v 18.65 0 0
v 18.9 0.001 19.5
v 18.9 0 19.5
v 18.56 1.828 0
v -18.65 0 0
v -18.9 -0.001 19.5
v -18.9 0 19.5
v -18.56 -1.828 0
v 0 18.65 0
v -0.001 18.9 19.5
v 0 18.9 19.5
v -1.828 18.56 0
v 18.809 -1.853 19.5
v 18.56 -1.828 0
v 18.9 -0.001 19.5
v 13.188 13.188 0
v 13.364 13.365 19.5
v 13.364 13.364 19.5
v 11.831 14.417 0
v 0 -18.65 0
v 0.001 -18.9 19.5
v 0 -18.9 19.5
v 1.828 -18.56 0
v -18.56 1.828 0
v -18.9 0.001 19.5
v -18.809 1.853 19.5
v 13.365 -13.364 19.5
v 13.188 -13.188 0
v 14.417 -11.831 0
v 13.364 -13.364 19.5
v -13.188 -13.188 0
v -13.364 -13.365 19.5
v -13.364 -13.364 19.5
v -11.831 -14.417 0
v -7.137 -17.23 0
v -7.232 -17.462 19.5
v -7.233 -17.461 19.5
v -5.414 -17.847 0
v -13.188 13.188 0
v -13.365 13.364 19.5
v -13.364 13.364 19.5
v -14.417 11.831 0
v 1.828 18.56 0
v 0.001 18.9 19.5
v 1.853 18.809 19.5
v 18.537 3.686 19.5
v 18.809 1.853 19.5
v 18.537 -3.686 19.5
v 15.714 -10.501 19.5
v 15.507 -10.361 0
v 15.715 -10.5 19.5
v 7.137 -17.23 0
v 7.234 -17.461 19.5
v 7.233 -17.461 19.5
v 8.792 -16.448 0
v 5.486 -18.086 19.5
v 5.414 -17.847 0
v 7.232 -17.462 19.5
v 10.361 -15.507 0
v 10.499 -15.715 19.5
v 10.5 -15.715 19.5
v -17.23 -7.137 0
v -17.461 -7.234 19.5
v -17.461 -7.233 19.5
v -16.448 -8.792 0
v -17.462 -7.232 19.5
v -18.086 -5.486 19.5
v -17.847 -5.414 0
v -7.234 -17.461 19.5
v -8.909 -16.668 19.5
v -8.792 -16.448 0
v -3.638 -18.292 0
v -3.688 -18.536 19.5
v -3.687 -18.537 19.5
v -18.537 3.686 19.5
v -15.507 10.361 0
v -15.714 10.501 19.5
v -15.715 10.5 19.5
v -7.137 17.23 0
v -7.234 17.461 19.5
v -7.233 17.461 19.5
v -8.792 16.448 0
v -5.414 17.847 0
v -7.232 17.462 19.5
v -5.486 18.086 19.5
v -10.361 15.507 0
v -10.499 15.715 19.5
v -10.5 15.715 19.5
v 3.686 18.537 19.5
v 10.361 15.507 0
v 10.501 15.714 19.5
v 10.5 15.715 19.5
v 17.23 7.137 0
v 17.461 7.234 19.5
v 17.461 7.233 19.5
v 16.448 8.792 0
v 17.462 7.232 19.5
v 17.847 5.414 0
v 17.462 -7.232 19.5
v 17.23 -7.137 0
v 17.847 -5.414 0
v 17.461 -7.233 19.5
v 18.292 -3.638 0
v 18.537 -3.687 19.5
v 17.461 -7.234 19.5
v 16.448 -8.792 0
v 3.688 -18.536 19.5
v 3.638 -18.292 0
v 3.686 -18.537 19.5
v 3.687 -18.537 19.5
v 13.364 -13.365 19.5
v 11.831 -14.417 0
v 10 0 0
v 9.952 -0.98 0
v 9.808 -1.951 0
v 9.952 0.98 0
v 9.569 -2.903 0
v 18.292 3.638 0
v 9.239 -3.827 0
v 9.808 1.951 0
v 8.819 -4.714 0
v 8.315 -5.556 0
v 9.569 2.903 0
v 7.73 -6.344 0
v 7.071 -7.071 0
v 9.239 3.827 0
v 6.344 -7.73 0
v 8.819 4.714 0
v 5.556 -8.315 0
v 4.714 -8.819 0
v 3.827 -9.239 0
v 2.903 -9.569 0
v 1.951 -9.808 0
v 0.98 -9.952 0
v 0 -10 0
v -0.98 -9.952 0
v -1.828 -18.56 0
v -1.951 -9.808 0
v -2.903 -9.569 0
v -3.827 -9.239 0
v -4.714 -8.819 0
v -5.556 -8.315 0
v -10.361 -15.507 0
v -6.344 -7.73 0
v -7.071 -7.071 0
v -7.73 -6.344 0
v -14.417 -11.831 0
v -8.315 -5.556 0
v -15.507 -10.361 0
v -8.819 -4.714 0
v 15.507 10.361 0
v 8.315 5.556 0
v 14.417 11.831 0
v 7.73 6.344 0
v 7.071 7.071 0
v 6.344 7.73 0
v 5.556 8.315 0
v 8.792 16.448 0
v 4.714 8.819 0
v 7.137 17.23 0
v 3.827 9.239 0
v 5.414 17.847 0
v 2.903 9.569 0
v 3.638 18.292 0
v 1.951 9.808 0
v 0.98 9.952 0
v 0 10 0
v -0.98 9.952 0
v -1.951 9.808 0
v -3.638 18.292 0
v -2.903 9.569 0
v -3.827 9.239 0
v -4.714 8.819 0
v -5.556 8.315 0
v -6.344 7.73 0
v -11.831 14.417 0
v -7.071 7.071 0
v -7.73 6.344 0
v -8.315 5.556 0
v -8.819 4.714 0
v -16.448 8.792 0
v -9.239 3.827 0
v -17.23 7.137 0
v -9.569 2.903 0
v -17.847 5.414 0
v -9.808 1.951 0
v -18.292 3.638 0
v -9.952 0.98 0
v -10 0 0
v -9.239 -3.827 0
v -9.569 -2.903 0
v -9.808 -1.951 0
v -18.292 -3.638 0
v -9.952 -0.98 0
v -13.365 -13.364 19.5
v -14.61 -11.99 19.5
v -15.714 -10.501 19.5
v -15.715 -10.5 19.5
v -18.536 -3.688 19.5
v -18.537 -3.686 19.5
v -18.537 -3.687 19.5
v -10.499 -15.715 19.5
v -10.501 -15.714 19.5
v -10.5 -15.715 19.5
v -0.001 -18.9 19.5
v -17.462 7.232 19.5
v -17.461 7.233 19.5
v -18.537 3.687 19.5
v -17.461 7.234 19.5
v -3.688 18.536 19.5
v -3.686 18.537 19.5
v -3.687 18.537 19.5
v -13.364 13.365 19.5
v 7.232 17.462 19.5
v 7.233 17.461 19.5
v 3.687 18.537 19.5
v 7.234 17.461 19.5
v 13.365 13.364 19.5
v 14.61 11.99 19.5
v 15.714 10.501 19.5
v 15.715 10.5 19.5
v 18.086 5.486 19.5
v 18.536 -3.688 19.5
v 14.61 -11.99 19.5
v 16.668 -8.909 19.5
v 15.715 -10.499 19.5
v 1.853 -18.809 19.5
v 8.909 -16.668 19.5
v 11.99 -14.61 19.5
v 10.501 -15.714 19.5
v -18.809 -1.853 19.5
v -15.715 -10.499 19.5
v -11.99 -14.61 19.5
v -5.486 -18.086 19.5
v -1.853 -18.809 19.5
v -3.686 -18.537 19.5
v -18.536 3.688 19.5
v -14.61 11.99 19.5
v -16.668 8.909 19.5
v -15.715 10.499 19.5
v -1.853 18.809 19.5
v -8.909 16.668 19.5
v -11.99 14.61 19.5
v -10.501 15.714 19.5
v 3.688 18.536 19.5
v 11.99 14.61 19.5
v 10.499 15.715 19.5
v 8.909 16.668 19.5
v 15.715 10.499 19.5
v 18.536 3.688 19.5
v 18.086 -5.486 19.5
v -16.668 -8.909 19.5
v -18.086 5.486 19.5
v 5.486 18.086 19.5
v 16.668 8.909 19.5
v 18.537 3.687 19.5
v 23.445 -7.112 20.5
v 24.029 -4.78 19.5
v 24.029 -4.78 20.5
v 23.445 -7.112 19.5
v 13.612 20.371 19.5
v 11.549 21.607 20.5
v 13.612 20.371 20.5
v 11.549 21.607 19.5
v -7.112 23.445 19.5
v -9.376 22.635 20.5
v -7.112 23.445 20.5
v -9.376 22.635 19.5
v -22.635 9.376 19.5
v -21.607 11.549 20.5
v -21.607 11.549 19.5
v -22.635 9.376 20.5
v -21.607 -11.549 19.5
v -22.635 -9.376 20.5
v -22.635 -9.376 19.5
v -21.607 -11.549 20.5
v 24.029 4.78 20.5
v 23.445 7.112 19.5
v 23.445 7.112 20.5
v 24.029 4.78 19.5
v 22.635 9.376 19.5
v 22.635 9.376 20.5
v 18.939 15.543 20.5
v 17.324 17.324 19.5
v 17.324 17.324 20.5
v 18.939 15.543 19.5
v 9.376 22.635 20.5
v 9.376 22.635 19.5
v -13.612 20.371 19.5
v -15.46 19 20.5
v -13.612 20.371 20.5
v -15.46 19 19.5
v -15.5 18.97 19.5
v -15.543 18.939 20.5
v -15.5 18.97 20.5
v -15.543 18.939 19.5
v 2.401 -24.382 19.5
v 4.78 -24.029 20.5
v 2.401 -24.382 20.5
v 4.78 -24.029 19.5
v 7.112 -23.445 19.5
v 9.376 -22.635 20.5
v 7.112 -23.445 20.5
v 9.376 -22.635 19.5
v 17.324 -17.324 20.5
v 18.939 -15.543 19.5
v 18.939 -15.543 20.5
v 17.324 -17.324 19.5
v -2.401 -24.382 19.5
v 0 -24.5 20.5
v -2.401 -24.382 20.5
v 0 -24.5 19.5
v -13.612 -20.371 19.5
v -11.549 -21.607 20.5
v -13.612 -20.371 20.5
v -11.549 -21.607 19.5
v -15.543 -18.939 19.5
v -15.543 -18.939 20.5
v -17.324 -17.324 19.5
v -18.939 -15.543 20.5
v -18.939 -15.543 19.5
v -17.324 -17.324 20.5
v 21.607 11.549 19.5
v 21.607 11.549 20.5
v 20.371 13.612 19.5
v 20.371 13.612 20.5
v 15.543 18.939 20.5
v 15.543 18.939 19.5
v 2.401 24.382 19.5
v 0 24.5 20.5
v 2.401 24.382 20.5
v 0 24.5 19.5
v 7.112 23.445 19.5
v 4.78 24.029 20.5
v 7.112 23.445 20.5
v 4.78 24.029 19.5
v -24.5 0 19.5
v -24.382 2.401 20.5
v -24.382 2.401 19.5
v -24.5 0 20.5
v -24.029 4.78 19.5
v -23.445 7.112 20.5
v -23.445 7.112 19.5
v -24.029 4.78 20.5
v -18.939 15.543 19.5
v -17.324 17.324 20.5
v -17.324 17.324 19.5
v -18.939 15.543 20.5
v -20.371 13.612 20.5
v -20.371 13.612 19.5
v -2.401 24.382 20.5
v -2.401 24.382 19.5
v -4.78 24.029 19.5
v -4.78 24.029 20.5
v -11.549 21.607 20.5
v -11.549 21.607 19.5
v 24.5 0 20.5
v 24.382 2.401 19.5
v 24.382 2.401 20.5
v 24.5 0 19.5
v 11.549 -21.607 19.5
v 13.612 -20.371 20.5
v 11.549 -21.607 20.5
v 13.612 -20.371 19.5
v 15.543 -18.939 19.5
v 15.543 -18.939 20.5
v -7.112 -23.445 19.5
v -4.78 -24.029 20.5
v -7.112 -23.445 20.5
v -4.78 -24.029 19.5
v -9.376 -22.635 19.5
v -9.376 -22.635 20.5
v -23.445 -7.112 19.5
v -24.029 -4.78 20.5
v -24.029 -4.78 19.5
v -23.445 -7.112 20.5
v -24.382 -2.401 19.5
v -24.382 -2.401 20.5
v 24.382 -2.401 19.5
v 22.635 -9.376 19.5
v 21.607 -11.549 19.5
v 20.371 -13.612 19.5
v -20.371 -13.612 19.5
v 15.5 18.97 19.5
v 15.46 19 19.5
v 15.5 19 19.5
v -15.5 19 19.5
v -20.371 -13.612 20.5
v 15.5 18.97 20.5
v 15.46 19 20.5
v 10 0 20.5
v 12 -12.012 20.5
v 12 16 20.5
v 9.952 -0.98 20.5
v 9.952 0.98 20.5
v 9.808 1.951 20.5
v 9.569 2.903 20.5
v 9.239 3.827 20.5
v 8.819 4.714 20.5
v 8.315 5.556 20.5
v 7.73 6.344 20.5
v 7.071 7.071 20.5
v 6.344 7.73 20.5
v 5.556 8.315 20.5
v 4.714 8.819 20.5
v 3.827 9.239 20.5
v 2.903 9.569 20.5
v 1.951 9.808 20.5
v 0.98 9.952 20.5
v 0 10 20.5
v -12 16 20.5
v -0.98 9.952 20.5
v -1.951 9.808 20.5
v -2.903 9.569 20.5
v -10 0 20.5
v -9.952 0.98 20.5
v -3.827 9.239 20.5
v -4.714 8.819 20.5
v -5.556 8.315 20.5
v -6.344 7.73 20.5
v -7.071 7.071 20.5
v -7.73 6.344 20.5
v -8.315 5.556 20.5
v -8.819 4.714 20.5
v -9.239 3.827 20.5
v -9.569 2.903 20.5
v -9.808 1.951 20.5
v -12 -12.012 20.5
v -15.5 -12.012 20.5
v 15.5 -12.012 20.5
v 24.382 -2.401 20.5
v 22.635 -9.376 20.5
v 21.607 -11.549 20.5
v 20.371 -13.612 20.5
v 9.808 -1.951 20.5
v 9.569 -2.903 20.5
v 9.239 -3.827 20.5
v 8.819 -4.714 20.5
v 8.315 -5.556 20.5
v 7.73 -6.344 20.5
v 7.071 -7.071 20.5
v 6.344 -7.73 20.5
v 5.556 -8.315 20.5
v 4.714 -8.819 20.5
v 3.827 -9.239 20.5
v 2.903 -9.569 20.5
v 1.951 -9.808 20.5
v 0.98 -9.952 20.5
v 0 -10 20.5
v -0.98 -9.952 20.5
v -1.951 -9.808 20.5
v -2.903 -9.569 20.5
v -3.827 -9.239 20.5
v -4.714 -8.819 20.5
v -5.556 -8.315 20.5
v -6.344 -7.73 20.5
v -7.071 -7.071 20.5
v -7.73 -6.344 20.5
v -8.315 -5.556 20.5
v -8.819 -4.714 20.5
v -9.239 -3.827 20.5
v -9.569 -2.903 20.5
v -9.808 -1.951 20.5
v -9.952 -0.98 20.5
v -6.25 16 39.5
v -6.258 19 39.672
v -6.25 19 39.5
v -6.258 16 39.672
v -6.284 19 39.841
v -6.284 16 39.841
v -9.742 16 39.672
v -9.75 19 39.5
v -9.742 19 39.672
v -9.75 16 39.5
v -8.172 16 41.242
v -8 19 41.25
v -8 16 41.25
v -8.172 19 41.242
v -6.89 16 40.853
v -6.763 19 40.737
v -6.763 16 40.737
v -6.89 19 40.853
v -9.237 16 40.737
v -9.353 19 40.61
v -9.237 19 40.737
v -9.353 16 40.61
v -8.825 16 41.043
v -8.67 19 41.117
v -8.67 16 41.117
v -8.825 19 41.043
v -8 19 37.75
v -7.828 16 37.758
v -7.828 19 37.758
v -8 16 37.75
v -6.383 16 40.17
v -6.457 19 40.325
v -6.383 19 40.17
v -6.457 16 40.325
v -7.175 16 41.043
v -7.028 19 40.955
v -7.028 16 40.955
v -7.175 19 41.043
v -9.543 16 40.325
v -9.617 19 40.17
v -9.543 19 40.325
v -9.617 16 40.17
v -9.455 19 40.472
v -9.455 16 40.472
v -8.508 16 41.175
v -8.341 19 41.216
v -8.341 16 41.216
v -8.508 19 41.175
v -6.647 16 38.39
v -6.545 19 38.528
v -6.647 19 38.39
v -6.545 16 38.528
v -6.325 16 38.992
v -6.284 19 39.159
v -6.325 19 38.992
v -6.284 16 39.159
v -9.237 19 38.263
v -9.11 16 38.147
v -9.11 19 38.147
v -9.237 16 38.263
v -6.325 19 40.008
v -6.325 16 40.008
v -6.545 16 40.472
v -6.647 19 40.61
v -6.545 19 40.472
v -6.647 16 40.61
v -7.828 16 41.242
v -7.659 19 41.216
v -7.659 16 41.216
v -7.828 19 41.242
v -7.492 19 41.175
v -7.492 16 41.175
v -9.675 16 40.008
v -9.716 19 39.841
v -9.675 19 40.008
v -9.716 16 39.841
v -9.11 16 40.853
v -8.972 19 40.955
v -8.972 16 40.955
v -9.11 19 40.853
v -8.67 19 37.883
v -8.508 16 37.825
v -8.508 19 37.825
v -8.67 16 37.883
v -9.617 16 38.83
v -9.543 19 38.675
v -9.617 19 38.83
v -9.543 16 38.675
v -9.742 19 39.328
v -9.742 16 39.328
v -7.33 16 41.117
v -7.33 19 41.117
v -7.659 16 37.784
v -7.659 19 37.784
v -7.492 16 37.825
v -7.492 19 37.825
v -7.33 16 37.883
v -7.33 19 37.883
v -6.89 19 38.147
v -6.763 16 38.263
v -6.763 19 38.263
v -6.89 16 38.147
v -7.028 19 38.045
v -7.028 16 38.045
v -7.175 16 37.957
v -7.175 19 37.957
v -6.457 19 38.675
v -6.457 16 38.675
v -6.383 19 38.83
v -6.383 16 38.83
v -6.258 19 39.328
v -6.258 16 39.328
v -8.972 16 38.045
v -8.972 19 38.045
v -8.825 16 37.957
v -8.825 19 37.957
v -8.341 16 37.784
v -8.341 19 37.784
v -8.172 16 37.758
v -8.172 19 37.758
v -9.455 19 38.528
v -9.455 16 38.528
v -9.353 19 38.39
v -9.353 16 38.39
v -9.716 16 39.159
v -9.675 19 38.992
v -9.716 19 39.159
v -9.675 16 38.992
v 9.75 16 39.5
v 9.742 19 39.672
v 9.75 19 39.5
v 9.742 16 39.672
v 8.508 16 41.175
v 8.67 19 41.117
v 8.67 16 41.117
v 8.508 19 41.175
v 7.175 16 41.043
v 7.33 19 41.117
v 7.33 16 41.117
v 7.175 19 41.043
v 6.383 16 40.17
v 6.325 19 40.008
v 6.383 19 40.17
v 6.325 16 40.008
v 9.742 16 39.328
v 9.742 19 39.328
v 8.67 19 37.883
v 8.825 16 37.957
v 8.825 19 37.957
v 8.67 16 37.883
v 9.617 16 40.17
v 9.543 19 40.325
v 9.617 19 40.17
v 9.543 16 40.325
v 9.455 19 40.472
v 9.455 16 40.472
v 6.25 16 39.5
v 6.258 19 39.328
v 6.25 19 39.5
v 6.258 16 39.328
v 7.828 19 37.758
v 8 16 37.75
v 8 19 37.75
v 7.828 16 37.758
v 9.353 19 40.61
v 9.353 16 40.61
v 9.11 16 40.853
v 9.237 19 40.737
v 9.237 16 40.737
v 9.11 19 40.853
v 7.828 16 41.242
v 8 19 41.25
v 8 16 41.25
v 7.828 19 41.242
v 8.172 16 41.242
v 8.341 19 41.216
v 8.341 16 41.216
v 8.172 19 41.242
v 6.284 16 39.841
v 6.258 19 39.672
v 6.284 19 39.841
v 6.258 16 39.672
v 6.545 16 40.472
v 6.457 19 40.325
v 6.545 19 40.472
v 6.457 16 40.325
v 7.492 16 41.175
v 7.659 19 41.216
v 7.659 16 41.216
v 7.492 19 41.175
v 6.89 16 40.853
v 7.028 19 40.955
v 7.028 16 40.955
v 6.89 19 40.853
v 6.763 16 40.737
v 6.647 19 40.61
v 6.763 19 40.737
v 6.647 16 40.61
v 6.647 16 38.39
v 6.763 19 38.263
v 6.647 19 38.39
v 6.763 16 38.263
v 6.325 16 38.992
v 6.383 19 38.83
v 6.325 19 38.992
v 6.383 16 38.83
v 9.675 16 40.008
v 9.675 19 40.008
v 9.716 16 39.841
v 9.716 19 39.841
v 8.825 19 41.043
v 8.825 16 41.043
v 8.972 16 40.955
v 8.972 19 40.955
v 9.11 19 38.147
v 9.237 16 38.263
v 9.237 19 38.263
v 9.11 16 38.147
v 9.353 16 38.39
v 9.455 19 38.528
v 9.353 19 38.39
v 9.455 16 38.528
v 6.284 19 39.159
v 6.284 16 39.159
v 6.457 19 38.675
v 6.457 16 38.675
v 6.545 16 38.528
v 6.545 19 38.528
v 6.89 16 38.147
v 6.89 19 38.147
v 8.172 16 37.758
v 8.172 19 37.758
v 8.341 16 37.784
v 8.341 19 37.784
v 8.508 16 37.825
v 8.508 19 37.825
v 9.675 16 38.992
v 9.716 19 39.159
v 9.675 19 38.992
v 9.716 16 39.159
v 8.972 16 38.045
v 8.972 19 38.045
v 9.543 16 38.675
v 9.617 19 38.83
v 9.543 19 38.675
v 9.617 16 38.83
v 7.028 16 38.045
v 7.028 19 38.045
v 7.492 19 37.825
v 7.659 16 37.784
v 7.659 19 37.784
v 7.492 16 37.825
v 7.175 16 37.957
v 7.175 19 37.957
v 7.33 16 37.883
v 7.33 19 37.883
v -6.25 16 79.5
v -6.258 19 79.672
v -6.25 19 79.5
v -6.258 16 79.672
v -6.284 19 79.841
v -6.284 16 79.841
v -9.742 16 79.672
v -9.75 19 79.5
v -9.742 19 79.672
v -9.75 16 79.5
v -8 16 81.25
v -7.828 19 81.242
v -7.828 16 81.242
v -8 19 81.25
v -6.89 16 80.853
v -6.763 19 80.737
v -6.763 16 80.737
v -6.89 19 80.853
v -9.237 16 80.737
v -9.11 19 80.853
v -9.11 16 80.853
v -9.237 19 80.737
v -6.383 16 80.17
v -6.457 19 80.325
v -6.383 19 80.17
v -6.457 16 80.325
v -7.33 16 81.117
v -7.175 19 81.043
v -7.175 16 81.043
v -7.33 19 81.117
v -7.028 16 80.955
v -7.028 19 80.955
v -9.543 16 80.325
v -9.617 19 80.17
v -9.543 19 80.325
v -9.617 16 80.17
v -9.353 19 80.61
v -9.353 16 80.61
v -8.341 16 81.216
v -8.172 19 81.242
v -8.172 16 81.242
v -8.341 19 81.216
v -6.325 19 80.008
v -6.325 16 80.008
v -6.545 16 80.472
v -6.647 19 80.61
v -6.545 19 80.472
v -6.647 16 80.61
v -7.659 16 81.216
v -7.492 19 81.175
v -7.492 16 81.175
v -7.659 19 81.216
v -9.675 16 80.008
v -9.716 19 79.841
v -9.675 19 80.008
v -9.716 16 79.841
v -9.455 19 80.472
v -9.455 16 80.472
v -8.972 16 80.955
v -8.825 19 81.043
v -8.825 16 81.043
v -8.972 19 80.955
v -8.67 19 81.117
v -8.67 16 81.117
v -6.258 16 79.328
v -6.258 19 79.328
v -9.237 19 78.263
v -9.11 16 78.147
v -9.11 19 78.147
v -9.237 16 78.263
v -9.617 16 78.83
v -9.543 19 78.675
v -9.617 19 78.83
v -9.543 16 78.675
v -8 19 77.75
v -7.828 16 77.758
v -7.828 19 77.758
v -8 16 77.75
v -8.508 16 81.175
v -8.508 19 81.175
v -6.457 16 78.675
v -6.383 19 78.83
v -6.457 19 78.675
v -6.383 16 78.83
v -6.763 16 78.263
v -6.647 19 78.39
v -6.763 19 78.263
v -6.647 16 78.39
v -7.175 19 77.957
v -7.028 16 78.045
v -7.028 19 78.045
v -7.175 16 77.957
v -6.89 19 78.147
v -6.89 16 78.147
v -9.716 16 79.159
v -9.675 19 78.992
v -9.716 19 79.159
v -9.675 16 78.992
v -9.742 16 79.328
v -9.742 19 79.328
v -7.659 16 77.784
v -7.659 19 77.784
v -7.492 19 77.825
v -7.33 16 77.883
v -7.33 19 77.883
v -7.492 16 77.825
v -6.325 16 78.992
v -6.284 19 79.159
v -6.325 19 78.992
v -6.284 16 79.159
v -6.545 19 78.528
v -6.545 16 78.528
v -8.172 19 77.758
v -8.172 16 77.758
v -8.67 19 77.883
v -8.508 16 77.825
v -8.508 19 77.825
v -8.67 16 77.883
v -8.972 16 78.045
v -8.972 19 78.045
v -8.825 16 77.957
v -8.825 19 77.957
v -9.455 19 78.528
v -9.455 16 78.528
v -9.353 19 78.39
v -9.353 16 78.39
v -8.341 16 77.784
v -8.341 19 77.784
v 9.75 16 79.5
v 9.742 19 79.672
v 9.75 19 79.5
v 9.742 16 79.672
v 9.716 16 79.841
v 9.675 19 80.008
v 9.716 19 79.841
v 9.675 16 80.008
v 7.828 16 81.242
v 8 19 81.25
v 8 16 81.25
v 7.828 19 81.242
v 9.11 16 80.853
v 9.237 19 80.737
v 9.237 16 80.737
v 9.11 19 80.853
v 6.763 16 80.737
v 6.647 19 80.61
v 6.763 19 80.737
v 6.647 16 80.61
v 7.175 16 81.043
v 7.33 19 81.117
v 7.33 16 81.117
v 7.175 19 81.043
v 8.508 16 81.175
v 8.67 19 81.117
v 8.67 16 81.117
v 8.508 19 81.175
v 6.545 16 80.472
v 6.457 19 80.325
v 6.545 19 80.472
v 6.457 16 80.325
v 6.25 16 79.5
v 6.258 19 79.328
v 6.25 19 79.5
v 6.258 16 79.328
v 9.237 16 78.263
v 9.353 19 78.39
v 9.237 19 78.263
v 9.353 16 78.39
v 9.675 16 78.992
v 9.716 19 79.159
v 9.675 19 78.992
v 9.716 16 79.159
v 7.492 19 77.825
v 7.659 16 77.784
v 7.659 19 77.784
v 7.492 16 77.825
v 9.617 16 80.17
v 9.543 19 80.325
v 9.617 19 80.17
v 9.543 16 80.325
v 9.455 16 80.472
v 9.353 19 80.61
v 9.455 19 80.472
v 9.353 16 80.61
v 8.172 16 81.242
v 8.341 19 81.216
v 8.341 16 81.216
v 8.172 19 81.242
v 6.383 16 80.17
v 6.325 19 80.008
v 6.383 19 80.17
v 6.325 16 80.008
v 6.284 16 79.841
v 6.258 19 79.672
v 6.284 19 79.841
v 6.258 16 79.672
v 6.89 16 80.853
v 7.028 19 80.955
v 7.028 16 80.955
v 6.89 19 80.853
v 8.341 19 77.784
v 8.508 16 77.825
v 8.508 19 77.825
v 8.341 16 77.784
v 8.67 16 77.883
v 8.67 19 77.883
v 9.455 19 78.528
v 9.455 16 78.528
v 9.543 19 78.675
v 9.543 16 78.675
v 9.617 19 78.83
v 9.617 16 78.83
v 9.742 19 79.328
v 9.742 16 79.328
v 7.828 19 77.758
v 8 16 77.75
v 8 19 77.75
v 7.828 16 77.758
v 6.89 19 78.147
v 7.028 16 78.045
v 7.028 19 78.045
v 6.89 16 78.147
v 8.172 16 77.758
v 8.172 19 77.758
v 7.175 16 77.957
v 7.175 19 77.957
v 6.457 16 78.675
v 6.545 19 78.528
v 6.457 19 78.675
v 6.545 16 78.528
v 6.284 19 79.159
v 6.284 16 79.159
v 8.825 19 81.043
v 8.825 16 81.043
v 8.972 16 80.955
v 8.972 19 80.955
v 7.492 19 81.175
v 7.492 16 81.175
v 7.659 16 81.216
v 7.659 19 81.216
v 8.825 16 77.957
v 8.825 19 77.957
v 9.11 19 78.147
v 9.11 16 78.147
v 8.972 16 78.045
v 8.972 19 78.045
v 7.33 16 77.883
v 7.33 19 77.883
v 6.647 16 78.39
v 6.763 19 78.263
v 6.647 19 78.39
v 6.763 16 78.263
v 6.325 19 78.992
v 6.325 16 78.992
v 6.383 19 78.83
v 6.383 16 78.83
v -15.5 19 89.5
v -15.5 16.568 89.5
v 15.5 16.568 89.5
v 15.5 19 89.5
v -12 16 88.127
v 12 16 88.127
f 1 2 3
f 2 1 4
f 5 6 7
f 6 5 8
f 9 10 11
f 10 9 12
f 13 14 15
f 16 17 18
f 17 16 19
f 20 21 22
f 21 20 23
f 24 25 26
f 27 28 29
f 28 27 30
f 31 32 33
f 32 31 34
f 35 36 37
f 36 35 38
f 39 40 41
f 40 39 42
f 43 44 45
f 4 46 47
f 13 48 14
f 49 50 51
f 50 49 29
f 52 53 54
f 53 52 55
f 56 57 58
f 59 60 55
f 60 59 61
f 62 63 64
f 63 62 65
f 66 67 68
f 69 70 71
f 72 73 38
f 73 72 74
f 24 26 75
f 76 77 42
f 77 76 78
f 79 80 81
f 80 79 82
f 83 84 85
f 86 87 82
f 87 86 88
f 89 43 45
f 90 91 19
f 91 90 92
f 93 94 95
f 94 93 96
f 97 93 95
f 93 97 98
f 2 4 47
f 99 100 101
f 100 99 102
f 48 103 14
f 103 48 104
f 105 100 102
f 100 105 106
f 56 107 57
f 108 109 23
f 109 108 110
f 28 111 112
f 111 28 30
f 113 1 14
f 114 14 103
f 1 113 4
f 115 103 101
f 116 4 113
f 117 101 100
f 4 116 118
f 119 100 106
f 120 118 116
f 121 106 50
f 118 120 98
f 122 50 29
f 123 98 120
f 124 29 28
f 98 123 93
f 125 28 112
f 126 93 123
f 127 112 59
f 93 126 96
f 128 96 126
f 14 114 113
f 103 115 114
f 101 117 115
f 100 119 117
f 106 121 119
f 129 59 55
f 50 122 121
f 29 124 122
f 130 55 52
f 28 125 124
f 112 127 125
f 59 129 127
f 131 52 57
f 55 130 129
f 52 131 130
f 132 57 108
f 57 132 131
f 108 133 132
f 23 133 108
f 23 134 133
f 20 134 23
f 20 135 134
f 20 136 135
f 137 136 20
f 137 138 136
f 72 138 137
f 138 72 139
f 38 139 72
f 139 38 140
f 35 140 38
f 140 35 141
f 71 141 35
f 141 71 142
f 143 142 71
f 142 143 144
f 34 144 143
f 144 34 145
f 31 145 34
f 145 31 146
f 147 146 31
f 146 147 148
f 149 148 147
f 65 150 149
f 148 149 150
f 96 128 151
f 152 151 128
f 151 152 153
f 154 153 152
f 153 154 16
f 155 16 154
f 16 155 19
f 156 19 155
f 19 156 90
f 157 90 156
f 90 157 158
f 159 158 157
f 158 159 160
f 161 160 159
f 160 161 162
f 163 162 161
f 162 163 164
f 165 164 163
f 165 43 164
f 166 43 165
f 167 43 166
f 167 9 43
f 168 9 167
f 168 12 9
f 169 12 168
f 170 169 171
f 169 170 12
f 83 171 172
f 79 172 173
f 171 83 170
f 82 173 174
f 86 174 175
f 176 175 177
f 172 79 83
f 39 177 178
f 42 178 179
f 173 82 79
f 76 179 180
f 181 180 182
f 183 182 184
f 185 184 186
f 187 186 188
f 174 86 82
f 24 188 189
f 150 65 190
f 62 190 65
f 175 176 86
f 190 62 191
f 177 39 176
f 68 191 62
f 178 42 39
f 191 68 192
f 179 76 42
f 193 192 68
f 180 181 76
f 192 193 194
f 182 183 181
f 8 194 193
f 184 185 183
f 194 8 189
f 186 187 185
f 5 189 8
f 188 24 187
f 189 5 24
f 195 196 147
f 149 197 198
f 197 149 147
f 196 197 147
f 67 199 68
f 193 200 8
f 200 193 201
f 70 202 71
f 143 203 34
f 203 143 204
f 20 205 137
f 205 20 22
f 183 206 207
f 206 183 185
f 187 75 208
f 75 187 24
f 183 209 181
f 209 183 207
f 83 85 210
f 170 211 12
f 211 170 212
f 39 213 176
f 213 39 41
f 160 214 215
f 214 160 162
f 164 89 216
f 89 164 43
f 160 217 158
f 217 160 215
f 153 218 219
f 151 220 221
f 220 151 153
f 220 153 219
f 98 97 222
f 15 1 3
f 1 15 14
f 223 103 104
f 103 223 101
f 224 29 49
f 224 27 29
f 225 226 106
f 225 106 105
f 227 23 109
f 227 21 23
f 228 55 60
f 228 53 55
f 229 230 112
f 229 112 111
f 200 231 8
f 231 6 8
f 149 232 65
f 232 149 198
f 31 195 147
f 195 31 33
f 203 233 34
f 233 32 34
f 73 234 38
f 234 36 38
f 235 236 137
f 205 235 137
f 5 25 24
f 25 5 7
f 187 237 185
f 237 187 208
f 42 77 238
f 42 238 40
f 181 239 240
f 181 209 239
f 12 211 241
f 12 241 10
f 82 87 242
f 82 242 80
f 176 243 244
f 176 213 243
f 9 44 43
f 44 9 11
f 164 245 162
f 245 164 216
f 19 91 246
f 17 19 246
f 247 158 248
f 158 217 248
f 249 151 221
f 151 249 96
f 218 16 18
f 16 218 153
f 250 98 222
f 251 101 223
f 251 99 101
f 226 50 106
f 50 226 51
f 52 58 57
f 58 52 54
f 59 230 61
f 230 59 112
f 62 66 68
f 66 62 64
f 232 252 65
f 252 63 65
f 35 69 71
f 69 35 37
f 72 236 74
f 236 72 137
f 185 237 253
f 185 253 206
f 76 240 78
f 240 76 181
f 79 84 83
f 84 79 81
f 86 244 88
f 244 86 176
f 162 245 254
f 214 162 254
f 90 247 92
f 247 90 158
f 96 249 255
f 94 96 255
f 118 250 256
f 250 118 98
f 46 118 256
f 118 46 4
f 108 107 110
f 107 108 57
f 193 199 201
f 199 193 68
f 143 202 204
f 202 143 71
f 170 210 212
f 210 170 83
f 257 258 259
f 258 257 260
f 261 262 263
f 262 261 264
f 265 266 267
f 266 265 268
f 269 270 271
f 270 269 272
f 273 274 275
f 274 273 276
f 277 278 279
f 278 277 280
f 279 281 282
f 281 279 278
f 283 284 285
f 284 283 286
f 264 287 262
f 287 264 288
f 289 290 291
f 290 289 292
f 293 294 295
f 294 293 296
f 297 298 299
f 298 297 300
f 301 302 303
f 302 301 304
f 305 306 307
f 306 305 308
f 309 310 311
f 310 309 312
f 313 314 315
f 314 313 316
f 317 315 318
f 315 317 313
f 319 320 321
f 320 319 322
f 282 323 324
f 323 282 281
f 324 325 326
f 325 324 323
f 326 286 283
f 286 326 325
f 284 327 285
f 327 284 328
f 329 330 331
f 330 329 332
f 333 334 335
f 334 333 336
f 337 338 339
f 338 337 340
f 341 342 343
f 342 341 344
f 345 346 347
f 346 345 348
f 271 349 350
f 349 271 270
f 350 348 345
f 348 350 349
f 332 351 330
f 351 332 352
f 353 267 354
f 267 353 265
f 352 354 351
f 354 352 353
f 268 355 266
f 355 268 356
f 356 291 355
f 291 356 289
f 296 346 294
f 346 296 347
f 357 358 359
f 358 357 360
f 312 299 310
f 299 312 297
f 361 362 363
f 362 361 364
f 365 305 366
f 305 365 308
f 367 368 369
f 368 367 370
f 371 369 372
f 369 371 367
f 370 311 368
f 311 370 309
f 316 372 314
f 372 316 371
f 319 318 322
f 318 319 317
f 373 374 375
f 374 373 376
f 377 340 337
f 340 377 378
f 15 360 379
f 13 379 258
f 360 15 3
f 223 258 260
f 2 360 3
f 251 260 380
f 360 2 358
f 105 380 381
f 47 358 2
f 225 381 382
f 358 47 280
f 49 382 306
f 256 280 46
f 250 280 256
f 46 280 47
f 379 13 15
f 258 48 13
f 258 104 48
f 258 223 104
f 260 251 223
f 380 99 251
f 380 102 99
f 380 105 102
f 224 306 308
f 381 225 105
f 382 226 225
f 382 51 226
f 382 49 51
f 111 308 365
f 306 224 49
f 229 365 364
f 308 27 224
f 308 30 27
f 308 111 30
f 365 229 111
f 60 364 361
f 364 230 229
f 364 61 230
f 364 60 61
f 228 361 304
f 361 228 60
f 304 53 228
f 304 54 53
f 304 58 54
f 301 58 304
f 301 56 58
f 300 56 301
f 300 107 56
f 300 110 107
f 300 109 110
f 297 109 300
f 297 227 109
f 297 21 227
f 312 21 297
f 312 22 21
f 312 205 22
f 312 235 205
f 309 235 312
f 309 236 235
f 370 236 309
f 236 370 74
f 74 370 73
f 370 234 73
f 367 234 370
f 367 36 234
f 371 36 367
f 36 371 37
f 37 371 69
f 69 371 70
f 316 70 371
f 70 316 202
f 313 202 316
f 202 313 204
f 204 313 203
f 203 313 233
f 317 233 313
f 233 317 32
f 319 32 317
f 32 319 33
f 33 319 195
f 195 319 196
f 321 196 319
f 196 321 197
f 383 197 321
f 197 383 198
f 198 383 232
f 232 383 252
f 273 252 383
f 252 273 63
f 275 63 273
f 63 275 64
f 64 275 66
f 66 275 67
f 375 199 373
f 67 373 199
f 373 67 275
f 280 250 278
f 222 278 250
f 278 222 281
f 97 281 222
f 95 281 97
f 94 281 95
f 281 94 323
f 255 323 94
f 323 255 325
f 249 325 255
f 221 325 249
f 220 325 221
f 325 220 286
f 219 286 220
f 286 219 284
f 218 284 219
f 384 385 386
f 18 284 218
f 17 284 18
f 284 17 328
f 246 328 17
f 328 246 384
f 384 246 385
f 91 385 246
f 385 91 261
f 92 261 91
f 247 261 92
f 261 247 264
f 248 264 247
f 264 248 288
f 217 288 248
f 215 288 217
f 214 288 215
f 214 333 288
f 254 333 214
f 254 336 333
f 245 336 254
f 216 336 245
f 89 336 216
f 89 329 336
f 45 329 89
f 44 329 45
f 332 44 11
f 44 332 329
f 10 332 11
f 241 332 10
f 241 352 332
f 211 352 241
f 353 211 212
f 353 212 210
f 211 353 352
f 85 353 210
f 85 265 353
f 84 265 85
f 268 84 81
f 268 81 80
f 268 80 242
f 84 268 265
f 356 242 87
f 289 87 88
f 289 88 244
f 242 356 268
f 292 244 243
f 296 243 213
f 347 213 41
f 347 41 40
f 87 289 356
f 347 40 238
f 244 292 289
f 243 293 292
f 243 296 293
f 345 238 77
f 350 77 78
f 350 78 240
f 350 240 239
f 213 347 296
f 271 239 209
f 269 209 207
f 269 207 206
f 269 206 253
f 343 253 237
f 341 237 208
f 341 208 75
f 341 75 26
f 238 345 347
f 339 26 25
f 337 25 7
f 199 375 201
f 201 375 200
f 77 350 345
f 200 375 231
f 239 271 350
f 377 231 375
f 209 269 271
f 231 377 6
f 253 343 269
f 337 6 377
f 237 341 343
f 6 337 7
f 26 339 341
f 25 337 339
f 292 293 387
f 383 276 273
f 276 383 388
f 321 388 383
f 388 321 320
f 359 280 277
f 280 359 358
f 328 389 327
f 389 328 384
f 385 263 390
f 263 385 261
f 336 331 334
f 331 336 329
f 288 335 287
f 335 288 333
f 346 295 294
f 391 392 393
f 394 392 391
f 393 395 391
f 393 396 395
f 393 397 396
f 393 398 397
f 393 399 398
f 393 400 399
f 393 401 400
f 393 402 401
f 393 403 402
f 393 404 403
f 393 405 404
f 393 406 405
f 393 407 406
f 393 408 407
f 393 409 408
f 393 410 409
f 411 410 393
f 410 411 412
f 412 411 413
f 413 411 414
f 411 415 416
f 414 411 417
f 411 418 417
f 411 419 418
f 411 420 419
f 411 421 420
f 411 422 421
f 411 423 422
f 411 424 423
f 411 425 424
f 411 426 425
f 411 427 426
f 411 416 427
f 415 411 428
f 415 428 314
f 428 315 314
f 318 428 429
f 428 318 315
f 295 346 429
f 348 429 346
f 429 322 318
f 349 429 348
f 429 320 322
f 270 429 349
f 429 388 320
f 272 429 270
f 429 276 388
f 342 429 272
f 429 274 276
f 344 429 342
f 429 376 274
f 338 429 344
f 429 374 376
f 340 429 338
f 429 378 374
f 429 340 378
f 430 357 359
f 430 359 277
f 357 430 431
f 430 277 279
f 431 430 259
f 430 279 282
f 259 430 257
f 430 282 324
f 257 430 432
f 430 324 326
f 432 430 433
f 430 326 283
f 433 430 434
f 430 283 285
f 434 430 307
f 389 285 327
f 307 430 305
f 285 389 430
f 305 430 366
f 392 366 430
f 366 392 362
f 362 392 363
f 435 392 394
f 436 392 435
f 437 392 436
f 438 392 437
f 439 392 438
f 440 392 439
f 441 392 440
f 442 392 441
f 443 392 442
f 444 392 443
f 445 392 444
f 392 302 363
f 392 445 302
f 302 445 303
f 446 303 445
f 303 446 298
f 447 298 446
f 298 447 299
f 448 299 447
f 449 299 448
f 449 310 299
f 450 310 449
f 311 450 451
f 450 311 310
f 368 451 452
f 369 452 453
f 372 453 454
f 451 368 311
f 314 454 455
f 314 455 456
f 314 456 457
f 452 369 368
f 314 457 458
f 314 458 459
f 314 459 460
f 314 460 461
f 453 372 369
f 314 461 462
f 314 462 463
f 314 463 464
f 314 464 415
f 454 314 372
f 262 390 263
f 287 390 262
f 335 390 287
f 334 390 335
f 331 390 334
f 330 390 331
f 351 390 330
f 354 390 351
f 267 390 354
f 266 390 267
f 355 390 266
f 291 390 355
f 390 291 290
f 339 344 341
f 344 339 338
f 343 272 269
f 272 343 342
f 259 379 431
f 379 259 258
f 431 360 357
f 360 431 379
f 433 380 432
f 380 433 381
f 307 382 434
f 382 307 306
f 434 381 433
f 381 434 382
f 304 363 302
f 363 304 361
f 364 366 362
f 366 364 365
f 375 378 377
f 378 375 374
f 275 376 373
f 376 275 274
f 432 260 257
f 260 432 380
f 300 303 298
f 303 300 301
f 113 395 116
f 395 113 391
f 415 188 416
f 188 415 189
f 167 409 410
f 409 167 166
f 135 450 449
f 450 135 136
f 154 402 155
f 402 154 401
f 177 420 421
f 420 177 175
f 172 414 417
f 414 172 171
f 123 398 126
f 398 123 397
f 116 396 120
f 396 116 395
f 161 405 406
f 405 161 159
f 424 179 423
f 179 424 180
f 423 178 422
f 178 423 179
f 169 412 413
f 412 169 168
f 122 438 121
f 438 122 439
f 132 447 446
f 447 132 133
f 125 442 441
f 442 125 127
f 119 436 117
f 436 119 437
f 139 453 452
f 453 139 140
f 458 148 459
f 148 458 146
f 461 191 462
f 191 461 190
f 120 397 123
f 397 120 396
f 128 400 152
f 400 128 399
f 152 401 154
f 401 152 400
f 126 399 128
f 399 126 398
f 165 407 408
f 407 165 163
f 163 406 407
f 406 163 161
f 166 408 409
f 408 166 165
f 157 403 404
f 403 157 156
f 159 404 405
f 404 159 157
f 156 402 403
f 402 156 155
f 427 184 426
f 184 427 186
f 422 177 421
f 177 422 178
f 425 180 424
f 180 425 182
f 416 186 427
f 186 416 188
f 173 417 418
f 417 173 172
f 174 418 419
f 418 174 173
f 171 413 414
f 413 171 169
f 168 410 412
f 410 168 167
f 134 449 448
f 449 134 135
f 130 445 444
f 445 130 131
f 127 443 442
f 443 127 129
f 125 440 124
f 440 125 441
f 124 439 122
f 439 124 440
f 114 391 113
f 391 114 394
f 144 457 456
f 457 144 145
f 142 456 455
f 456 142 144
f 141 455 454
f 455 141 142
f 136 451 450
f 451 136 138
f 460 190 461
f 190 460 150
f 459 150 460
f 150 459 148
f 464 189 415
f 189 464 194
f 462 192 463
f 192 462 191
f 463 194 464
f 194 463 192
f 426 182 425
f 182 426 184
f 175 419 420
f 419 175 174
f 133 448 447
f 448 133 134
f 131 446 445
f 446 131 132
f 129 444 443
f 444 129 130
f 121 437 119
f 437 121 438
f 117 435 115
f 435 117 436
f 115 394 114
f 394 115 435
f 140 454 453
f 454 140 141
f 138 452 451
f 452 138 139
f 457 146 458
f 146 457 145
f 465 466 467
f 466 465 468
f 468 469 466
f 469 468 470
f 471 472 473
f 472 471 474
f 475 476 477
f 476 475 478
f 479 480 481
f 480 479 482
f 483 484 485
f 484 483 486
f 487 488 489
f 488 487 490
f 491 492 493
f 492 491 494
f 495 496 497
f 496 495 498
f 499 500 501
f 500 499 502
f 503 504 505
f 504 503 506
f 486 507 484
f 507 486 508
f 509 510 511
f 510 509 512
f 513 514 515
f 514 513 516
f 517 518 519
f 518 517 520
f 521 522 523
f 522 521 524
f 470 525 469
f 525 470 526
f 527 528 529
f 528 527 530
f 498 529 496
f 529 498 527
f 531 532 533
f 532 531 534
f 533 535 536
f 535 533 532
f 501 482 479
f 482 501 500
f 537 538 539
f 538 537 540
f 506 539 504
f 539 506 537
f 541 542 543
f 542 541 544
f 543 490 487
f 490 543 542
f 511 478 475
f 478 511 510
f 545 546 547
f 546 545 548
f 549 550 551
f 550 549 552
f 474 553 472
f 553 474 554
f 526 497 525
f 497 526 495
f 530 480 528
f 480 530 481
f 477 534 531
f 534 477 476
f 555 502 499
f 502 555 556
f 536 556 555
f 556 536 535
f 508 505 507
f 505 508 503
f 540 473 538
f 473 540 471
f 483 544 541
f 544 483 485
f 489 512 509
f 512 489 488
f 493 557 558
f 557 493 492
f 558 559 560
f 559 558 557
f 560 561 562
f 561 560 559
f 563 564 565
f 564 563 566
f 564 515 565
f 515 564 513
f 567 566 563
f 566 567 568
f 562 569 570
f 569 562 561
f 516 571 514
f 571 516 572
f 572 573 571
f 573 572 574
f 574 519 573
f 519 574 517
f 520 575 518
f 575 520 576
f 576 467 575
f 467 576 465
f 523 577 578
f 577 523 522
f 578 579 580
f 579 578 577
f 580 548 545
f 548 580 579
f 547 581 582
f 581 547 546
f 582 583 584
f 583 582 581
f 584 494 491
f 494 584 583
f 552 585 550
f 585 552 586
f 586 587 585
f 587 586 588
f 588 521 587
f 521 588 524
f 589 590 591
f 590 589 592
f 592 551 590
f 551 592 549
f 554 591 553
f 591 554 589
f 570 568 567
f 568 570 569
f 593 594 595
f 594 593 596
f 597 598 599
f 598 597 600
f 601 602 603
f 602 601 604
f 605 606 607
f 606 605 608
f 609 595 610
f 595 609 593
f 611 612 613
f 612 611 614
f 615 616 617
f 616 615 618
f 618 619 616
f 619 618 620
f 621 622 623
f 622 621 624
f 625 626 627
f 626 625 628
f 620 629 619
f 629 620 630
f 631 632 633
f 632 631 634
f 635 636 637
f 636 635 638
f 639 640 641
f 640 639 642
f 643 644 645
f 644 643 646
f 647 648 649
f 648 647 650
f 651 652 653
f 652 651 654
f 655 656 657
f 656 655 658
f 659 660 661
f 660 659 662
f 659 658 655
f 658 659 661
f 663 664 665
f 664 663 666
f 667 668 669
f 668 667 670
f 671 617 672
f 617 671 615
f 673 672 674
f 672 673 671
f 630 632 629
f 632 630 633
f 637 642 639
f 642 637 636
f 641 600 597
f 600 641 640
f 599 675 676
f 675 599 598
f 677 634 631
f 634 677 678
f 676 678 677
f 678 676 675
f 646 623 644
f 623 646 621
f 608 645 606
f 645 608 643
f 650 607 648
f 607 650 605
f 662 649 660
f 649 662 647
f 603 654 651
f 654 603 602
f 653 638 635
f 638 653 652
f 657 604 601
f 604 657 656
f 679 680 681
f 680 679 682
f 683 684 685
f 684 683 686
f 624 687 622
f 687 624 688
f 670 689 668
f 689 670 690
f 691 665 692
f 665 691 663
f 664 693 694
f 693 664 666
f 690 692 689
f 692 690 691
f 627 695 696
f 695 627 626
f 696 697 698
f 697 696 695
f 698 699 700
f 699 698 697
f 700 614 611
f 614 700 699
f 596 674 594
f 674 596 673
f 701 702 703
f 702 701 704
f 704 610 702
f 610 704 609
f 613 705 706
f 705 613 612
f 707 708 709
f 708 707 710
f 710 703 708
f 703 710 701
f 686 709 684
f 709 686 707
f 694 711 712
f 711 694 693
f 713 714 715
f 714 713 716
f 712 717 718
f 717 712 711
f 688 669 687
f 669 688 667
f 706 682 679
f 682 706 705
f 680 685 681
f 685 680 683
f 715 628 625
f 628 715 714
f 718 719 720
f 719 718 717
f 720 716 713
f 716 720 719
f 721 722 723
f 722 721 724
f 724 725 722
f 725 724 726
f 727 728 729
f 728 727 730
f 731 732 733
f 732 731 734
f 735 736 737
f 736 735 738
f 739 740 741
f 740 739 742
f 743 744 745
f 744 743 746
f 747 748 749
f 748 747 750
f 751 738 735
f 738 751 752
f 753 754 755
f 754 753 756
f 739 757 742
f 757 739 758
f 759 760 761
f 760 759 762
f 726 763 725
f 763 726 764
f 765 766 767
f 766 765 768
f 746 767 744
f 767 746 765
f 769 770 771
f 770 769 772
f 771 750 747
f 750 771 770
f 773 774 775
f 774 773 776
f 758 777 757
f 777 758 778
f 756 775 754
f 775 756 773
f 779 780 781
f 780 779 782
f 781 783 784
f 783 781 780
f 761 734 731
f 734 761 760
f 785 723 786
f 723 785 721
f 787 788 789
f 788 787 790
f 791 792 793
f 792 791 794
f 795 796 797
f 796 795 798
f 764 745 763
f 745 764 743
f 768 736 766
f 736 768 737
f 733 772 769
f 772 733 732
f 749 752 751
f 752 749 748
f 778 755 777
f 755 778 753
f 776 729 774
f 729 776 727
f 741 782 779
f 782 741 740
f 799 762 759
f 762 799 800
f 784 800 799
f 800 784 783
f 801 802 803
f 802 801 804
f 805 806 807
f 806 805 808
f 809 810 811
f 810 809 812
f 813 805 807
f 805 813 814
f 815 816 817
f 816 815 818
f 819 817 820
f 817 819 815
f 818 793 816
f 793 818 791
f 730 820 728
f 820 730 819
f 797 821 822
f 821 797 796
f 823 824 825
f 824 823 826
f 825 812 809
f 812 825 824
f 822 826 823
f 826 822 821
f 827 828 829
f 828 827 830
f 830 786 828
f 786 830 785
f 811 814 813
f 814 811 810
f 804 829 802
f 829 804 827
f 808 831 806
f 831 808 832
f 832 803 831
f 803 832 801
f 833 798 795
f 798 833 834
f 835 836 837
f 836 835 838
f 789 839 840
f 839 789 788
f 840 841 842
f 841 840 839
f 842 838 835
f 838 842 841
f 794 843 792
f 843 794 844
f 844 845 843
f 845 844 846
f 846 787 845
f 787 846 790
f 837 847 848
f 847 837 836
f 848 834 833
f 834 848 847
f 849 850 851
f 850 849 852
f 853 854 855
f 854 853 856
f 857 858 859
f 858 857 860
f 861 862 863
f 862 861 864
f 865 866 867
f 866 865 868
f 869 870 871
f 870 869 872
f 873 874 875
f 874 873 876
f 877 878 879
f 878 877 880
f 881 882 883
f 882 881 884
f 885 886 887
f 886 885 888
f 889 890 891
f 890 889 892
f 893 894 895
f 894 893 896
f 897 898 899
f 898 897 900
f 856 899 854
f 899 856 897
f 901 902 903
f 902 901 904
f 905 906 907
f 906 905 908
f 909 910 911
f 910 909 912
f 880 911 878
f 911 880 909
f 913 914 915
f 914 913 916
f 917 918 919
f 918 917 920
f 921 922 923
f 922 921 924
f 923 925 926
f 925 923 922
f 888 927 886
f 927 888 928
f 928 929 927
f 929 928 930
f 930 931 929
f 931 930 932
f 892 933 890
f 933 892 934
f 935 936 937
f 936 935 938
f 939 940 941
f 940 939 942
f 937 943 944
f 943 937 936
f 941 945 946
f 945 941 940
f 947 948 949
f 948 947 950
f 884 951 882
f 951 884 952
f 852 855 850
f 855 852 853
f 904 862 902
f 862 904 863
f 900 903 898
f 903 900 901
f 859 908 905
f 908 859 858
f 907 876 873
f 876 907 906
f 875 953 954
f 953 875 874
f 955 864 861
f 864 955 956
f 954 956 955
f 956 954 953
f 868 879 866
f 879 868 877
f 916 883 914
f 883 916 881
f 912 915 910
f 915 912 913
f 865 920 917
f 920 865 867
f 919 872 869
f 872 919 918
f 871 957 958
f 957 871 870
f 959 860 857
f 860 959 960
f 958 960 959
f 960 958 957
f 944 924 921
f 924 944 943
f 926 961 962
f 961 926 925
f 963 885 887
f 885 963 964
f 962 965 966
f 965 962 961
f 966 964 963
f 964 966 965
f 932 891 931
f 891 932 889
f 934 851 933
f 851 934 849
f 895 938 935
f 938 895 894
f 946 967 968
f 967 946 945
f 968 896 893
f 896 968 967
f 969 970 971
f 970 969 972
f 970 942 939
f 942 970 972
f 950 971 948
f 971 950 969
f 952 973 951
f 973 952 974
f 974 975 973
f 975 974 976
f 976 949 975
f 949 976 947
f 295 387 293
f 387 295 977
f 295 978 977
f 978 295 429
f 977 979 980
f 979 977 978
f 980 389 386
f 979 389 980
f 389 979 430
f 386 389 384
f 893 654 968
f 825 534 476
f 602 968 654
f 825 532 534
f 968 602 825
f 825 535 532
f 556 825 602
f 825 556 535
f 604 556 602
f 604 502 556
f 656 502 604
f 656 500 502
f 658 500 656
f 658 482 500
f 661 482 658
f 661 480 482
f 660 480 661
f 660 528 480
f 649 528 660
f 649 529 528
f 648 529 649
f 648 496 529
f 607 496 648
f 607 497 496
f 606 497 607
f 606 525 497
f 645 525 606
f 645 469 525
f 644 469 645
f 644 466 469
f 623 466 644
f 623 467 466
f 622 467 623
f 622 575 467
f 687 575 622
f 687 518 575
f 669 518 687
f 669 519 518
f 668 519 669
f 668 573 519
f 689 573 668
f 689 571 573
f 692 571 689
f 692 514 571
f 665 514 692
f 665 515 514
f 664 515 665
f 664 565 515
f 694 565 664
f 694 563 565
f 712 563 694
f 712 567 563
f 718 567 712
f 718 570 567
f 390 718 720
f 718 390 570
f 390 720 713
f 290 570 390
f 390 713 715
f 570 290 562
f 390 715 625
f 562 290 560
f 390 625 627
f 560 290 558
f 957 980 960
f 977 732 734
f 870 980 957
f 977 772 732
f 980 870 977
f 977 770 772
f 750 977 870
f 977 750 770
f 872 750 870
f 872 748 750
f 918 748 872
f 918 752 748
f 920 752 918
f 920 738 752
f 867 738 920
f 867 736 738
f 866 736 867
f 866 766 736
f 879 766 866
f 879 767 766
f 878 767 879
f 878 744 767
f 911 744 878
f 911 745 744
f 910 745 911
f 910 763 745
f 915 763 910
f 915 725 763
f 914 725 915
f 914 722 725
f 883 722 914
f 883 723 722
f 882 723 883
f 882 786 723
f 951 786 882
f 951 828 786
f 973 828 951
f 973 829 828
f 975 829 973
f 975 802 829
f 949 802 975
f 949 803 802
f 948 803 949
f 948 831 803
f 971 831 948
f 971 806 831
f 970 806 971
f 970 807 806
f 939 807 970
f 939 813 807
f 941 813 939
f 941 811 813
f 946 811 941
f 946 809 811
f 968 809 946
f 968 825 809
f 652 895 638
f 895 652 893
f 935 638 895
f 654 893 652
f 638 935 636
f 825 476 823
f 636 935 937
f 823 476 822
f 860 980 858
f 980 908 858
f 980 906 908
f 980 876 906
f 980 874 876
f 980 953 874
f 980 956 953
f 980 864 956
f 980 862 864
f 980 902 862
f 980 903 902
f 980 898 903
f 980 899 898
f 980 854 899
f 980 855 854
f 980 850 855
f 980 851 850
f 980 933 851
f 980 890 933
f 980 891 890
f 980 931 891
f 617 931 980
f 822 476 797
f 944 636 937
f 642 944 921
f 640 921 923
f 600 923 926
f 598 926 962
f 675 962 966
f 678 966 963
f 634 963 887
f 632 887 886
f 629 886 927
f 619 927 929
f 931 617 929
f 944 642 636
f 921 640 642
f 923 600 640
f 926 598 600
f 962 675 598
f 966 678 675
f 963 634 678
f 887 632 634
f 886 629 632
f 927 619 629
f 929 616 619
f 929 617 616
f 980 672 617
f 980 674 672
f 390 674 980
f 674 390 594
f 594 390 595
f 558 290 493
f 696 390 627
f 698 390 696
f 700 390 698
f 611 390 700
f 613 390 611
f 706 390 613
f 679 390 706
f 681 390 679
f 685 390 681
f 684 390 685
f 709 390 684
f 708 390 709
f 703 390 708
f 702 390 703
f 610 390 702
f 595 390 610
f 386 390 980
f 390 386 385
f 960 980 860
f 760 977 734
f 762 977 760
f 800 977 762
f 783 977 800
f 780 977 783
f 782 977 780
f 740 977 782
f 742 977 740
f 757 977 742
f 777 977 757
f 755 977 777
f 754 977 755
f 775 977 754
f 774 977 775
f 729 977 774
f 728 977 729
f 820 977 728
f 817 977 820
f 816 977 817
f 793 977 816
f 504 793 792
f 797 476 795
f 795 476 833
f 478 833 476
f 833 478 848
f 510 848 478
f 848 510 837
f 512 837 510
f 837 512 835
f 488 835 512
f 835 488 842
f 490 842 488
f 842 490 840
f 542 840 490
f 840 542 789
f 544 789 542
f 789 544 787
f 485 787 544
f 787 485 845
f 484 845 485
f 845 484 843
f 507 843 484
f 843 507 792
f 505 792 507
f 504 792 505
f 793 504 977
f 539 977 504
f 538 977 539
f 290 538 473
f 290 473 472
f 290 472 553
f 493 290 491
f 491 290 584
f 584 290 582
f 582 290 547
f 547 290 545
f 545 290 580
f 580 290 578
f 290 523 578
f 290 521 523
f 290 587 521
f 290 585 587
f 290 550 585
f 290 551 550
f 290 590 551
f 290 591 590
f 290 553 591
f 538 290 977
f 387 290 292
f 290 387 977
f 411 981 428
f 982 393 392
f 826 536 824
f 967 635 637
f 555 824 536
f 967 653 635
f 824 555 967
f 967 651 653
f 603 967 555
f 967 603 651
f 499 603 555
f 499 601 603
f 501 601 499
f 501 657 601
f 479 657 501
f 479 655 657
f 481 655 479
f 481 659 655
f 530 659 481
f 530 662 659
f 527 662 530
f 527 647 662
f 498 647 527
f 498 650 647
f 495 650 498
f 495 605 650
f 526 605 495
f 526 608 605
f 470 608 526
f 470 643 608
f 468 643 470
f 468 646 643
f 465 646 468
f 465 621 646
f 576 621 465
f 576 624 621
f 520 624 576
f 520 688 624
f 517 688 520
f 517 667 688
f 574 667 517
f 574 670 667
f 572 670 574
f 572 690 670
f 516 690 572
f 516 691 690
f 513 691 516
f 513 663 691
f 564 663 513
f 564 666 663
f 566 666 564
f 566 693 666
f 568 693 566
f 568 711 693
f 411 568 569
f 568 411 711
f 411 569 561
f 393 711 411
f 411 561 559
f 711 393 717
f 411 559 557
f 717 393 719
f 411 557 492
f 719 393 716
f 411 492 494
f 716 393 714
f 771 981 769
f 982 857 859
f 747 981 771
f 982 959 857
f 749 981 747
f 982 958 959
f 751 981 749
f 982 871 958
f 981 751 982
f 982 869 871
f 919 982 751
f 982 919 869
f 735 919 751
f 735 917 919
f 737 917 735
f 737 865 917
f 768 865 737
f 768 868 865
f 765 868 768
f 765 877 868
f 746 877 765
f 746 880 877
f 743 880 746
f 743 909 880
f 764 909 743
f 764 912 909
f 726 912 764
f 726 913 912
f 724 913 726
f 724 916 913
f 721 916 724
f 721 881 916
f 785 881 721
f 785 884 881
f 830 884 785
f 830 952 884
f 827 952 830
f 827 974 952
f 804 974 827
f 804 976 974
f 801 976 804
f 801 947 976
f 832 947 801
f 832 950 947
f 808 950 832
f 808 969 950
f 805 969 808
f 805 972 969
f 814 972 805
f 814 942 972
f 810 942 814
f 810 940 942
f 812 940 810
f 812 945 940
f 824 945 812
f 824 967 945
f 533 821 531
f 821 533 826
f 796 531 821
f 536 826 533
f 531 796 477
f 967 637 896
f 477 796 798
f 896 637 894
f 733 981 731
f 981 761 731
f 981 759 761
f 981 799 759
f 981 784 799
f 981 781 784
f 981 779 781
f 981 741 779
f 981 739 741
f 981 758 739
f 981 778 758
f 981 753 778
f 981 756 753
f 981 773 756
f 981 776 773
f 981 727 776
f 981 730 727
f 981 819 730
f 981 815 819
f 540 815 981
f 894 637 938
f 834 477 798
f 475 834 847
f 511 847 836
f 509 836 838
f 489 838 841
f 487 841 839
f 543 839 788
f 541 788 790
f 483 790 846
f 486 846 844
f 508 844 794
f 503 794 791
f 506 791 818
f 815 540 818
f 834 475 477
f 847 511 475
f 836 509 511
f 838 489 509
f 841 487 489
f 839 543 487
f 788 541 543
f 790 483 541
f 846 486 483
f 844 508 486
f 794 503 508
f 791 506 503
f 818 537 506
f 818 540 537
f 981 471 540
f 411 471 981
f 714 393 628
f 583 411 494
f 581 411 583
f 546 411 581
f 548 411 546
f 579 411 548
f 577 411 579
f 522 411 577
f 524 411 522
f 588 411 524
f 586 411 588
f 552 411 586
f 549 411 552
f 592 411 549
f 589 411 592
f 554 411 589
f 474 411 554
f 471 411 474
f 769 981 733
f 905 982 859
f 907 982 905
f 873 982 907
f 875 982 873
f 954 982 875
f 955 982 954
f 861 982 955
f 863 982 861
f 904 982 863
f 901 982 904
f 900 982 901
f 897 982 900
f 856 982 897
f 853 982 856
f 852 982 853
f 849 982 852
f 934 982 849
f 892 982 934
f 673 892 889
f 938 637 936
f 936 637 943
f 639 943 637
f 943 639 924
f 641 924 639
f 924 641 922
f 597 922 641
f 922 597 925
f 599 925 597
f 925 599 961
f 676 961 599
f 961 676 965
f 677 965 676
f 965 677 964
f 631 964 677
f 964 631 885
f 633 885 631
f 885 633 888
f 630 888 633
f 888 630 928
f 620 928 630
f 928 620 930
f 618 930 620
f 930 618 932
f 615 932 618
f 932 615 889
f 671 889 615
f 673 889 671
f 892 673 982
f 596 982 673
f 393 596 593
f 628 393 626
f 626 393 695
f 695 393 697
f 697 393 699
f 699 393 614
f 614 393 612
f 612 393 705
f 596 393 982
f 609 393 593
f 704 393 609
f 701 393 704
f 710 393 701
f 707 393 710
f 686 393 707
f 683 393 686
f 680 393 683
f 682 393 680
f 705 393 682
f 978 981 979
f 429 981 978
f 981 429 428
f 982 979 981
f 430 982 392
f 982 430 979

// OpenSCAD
$fn = 64;

Mount();

module Mount() {
    difference() {
        union() {
            cylinder(d1=37.3, d2=37.8, h =19.51);
            translate([0,0,19.5]) cylinder(d=49, h=1);
        }
        cylinder(d=20, h=100, center=true);
    }
    translate([0,0, 30 + 19.5])difference() {
        translate([0,0,5])cube([25+6,2*16+6, 70], true);
        cube([24, 2*16, 100], true);
        rotate(-22.5,[1,0,0]) translate([0,-40/2]) cube([40,40, 100], true);
        for(z=[-20,20], x=[-8,8]) translate([x, 0, z+10]) {
            rotate(90, [1,0,0])cylinder(d=3.5, h=100, center=true);
        }
    }
}
